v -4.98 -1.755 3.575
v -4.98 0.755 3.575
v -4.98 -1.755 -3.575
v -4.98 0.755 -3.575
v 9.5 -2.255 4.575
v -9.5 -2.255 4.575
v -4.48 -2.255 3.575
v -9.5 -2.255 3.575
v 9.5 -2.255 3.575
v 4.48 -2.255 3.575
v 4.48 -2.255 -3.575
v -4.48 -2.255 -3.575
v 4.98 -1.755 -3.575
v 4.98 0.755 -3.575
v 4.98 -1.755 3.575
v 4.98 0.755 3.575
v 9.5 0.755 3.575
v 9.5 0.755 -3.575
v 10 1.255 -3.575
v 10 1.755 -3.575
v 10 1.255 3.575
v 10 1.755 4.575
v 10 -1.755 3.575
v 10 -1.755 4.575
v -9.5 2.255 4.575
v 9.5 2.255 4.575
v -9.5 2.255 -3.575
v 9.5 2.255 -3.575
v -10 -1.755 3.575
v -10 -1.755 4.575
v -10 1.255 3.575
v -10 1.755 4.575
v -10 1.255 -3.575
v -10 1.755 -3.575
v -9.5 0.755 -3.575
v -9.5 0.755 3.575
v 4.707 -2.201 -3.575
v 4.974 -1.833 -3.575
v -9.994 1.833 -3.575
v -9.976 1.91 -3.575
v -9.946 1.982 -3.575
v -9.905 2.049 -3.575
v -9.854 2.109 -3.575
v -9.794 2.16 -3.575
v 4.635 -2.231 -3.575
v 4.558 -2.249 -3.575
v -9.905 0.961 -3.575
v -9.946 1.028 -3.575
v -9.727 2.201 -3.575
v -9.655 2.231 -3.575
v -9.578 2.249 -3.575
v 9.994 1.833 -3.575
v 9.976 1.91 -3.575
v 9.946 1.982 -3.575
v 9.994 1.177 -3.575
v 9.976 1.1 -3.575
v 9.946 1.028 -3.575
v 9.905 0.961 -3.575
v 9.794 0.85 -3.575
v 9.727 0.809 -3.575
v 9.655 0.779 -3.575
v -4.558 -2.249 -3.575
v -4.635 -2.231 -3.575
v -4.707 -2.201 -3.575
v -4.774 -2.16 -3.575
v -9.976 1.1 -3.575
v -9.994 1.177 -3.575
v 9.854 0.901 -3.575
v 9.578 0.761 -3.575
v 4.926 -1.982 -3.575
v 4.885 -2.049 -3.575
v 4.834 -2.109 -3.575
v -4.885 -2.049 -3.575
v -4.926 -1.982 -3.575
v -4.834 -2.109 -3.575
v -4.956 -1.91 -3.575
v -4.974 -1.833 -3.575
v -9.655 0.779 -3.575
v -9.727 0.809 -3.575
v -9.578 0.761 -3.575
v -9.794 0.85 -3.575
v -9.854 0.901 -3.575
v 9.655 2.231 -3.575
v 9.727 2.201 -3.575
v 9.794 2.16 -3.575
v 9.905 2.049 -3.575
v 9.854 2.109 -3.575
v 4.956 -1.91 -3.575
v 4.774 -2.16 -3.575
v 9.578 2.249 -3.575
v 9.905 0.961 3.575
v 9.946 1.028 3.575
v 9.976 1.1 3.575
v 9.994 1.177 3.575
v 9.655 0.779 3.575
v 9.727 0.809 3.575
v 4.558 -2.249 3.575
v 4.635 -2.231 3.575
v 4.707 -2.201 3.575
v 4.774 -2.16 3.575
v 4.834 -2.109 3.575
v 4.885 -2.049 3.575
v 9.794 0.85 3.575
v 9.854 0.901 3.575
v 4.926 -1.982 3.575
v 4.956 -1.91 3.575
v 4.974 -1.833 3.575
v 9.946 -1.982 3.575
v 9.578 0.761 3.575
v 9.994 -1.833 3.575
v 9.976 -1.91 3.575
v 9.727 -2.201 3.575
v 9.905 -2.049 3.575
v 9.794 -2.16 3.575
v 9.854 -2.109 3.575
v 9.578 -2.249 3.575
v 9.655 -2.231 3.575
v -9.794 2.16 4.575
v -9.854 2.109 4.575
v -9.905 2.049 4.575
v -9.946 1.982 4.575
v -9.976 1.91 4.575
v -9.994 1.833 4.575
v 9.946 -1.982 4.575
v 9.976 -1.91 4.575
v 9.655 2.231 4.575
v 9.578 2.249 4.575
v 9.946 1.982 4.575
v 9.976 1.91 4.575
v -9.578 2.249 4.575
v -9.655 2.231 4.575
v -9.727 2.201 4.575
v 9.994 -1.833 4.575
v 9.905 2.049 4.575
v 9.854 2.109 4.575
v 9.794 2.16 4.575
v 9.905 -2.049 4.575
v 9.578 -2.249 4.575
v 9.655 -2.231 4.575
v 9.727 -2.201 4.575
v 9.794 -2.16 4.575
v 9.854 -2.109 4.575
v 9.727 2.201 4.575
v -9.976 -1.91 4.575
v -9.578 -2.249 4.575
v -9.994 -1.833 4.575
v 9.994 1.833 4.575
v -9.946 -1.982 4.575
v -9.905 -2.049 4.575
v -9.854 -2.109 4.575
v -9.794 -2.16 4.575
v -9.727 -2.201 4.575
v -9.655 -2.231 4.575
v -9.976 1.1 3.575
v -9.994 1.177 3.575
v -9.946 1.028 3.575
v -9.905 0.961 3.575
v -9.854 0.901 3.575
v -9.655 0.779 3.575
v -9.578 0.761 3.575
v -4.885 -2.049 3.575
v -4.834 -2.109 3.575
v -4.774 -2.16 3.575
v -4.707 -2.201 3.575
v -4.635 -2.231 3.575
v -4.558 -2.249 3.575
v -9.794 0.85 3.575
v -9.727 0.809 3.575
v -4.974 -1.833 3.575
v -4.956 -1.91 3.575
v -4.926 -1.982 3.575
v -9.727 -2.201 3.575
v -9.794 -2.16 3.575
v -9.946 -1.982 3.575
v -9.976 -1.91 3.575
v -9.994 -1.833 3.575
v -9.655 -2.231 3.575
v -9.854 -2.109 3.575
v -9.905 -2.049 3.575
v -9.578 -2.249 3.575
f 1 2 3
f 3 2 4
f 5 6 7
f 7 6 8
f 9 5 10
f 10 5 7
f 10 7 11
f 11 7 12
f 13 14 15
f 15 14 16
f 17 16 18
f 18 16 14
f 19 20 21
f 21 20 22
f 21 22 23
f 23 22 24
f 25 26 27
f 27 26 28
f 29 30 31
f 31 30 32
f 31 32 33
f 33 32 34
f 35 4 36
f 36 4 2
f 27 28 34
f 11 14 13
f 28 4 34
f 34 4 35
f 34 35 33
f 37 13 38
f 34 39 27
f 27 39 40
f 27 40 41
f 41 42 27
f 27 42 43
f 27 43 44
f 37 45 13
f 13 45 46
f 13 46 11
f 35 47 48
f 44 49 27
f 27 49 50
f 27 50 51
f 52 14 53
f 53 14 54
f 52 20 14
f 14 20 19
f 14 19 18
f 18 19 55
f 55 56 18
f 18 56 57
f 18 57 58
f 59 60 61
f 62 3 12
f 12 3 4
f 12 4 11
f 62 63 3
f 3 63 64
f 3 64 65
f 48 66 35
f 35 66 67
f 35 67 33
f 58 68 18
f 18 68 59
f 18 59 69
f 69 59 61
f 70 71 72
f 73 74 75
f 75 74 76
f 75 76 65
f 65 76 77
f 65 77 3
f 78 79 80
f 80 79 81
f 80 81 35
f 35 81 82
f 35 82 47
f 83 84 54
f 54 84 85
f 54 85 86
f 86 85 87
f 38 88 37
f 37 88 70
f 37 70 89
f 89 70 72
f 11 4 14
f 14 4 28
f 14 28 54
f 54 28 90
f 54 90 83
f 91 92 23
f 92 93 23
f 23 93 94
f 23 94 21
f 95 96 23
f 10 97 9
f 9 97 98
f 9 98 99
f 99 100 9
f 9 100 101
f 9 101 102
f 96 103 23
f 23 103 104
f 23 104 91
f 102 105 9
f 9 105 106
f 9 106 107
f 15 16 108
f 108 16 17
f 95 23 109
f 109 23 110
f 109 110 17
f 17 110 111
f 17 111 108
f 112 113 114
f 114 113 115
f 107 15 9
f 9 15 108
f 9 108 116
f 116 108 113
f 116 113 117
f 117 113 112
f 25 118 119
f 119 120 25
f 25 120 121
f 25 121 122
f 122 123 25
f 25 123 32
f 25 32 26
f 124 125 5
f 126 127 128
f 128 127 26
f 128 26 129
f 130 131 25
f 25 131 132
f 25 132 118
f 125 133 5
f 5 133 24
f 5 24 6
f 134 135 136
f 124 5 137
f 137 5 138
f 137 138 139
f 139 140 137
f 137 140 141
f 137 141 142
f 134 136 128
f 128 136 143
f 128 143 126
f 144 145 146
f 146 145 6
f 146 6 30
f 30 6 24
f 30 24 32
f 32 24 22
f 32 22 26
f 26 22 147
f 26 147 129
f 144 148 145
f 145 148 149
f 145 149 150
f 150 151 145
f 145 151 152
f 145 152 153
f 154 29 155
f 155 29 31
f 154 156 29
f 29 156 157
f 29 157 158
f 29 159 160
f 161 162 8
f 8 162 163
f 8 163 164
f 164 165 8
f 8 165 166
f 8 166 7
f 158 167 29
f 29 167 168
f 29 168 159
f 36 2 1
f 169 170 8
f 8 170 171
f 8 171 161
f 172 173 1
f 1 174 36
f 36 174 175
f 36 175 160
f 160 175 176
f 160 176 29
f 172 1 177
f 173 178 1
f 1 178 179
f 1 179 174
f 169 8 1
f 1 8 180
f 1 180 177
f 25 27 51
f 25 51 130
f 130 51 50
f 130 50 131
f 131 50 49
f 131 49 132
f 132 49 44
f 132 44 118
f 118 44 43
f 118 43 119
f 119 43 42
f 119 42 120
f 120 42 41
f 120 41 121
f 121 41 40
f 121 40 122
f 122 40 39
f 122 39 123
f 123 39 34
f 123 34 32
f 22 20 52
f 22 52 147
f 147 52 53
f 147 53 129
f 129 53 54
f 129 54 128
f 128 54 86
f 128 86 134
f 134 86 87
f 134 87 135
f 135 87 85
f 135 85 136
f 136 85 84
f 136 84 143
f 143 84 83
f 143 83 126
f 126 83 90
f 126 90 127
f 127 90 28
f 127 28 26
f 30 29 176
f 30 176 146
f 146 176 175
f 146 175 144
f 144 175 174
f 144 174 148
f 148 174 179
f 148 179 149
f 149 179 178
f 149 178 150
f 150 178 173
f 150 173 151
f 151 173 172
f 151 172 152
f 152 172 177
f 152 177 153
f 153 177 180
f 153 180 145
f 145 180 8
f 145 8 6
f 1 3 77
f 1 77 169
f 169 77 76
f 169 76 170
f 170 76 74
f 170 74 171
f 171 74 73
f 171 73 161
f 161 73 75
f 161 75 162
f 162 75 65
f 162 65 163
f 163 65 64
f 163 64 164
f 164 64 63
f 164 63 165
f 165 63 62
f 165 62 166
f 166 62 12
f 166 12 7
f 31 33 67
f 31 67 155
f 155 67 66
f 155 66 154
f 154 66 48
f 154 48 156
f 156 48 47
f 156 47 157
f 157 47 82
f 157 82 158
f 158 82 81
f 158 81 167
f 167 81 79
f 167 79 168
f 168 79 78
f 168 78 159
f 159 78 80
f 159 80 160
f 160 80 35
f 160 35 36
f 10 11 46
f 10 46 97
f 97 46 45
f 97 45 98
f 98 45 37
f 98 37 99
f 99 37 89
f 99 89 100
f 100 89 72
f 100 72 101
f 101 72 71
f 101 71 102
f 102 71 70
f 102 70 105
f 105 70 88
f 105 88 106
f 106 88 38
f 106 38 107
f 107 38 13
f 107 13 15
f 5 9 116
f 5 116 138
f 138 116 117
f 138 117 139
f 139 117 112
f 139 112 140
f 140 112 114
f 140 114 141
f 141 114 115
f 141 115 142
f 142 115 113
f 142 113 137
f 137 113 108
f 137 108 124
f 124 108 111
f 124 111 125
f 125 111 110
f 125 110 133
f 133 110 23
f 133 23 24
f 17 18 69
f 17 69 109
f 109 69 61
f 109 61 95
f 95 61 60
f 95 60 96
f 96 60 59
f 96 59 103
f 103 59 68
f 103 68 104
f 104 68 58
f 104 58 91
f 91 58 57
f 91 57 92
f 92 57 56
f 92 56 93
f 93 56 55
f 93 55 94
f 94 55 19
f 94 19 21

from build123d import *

# Parameters (mm, degrees)
BOSS_EXTRUDE1_DEPTH = 3.575
SKETCH3_W           = 20
SKETCH3_H           = 4.51
BOSS_EXTRUDE2_DEPTH = 1
FILLET1_R           = 0.5


with BuildPart() as part:
    # Sketch2 → Boss-Extrude1 (new, symmetric)
    with BuildSketch(Plane.XY):
        Polygon((-4.98, -2.255), (4.98, -2.255), (4.98, 0.755), (10, 0.755), (10, 2.255), (-10, 2.255), (-10, 0.755), (-4.98, 0.755), align=None)
    extrude(amount=BOSS_EXTRUDE1_DEPTH, both=True)

    # Sketch3 → Boss-Extrude2 (add)
    with BuildSketch(Plane.XY.offset(3.575)):
        Rectangle(SKETCH3_W, SKETCH3_H)
    extrude(amount=BOSS_EXTRUDE2_DEPTH)

    # Fillet1
    fillet1_edges = [part.edges().sort_by_distance(p)[0] for p in [
        (-10, 0.755, 0),
        (-10, 2.255, 0.5),
        (10, 2.255, 0.5),
        (10, 0.755, 0),
        (4.98, -2.255, 0),
        (-4.98, -2.255, 0),
        (10, -2.255, 4.075),
        (-10, -2.255, 4.075),
    ]]
    fillet(fillet1_edges, radius=FILLET1_R)


solid = part.part
